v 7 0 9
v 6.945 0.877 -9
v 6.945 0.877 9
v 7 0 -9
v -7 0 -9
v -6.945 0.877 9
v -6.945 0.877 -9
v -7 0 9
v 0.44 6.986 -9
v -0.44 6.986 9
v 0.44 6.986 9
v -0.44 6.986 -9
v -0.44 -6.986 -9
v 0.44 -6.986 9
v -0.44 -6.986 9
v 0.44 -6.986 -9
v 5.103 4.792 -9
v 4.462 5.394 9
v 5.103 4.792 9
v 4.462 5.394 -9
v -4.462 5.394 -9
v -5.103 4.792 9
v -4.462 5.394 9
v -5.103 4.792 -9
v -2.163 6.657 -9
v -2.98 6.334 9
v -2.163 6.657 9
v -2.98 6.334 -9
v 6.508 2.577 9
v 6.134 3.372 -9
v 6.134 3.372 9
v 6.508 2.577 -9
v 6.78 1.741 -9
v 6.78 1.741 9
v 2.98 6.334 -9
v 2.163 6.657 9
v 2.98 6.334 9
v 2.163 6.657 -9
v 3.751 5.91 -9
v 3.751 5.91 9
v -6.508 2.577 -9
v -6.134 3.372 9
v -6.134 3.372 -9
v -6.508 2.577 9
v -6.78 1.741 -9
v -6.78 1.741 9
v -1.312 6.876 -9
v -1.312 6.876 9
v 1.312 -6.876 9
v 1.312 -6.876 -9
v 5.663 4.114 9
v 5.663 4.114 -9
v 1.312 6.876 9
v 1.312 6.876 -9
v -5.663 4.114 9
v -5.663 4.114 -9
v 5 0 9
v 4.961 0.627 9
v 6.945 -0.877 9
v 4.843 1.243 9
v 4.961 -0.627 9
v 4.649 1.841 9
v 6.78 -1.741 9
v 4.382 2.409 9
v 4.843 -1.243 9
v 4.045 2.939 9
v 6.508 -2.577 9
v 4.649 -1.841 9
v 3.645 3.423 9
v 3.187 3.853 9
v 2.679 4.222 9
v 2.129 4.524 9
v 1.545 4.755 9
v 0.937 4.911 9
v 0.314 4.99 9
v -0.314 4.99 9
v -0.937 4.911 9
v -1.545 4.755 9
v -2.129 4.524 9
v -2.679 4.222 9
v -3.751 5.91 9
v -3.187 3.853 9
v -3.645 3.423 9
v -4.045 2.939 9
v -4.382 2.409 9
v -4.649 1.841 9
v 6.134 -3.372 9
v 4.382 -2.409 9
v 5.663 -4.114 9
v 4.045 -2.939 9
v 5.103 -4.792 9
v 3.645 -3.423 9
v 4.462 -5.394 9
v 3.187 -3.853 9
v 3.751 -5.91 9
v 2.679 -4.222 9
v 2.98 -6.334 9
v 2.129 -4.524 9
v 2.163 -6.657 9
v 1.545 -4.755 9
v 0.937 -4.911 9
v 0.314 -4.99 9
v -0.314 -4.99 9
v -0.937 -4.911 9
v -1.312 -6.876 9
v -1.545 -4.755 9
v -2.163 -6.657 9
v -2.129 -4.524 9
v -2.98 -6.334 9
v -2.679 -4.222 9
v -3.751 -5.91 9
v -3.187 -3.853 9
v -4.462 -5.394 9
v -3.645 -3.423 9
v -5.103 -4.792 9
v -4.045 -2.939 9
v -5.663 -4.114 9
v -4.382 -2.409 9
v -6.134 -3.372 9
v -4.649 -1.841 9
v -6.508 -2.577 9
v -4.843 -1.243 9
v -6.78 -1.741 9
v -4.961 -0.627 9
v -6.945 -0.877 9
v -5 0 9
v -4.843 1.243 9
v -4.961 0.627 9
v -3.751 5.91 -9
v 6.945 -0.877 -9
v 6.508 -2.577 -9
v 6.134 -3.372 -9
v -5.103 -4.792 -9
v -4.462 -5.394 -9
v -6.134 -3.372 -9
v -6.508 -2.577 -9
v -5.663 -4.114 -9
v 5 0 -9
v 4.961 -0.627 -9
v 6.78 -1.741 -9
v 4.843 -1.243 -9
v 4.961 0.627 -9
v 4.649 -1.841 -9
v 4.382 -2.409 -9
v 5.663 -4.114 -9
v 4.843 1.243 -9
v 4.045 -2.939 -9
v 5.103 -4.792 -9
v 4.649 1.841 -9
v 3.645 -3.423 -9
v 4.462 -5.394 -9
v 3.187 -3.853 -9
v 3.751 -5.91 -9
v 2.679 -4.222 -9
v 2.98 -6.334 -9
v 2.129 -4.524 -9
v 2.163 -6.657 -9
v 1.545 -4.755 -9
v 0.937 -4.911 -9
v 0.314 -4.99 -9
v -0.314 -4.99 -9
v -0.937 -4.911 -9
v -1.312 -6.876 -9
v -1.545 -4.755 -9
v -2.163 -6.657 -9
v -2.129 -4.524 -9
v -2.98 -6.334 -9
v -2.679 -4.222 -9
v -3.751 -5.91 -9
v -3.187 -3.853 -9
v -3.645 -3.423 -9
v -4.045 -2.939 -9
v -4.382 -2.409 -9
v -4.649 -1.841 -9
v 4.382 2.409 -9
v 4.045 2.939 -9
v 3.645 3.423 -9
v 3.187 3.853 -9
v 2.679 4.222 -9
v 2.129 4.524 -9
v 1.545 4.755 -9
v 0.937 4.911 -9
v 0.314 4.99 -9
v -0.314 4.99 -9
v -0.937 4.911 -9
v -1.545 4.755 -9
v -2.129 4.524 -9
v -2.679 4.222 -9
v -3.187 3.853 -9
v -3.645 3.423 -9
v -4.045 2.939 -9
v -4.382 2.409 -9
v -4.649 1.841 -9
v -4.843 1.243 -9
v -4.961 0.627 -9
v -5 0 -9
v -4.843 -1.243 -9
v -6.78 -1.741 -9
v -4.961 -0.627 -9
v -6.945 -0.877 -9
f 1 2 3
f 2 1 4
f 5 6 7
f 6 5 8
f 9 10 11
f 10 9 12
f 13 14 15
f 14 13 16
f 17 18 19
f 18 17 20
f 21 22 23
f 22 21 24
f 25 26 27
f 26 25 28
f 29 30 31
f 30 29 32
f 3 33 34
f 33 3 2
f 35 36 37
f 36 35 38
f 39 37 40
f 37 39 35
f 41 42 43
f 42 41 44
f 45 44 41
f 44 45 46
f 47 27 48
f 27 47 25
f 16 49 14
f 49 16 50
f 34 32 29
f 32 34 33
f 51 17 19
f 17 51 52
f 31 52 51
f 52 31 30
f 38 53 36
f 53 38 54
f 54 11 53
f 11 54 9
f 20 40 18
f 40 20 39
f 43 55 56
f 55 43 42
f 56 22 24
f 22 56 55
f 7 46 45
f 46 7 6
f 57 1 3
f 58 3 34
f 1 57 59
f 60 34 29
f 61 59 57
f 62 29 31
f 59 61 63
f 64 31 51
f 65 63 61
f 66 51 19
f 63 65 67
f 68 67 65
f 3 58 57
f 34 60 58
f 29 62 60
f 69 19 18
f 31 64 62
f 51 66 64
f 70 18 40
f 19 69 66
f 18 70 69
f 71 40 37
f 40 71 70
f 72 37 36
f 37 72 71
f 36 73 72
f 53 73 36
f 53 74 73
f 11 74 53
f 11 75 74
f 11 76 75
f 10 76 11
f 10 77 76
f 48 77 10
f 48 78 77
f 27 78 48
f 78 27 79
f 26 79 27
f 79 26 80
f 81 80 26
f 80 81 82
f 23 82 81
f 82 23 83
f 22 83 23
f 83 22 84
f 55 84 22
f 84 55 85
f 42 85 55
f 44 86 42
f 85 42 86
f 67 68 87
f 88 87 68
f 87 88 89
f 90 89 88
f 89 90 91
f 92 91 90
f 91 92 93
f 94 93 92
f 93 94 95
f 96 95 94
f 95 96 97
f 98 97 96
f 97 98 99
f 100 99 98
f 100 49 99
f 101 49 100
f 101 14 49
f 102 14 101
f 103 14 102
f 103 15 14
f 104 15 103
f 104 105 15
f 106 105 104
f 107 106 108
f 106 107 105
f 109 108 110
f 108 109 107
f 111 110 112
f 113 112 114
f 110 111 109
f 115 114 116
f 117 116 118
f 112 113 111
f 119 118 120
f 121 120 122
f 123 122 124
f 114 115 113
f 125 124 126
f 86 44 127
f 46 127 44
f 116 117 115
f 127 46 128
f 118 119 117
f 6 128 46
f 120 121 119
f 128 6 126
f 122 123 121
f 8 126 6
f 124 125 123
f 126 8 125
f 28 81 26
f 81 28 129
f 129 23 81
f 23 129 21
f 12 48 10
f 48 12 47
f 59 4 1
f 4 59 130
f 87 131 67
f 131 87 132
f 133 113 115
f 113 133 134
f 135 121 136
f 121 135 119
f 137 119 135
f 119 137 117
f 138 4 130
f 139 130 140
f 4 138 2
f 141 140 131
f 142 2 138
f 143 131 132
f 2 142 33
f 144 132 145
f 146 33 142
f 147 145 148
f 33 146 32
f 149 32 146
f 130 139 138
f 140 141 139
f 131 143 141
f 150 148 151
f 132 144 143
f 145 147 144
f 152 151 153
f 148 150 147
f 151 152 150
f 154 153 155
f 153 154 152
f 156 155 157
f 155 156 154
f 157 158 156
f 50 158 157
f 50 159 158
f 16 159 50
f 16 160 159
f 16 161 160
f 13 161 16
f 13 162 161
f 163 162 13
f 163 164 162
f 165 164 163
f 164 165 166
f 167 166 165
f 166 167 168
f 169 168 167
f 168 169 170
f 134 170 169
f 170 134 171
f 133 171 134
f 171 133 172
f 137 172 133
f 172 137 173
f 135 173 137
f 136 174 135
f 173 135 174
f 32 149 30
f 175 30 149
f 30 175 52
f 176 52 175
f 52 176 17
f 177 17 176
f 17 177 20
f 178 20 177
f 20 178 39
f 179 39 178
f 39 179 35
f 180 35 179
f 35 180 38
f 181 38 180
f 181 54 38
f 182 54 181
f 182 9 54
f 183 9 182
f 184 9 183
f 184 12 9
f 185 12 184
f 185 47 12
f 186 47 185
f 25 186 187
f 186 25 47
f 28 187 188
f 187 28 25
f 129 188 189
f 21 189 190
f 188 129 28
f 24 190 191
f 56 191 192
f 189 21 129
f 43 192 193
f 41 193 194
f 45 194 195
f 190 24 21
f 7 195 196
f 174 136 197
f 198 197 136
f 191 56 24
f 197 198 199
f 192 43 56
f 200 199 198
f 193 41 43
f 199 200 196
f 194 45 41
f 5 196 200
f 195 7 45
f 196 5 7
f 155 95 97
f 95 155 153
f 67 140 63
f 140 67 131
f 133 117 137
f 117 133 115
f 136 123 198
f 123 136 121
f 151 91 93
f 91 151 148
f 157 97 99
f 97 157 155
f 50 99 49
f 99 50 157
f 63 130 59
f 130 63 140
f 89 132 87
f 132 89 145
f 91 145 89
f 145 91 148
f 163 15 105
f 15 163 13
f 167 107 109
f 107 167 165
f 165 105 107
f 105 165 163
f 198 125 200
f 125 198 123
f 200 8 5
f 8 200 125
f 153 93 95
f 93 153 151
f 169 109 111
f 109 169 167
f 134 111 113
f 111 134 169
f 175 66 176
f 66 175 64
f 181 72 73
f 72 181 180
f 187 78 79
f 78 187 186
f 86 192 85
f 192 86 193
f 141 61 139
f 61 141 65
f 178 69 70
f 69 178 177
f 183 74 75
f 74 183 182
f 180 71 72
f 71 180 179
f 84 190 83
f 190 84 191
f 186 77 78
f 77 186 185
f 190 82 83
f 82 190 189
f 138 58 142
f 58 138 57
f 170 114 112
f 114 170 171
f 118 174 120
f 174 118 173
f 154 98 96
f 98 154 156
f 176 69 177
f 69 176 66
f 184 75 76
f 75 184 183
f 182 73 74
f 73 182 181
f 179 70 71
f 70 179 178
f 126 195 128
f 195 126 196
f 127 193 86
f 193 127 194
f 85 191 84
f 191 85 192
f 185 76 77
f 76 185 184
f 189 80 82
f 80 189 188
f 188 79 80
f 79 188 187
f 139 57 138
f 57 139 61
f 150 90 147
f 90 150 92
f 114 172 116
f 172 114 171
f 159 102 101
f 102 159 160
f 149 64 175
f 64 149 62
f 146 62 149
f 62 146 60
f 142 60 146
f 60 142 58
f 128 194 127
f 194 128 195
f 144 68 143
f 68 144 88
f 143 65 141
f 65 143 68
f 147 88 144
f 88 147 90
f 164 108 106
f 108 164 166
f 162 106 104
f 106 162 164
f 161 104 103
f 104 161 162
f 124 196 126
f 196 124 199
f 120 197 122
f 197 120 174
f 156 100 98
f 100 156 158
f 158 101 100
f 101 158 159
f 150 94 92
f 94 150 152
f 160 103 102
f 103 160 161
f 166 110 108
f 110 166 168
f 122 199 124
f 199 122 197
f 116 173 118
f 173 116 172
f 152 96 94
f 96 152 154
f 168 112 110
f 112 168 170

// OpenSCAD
$fn = 50;


difference() {
	union() {
		translate(v = [0, 0, -9.0000000000]) {
			cylinder(h = 18, r = 7.0000000000);
		}
	}
	union() {
		translate(v = [0, 0, -100.0000000000]) {
			cylinder(h = 200, r = 5);
		}
	}
}
